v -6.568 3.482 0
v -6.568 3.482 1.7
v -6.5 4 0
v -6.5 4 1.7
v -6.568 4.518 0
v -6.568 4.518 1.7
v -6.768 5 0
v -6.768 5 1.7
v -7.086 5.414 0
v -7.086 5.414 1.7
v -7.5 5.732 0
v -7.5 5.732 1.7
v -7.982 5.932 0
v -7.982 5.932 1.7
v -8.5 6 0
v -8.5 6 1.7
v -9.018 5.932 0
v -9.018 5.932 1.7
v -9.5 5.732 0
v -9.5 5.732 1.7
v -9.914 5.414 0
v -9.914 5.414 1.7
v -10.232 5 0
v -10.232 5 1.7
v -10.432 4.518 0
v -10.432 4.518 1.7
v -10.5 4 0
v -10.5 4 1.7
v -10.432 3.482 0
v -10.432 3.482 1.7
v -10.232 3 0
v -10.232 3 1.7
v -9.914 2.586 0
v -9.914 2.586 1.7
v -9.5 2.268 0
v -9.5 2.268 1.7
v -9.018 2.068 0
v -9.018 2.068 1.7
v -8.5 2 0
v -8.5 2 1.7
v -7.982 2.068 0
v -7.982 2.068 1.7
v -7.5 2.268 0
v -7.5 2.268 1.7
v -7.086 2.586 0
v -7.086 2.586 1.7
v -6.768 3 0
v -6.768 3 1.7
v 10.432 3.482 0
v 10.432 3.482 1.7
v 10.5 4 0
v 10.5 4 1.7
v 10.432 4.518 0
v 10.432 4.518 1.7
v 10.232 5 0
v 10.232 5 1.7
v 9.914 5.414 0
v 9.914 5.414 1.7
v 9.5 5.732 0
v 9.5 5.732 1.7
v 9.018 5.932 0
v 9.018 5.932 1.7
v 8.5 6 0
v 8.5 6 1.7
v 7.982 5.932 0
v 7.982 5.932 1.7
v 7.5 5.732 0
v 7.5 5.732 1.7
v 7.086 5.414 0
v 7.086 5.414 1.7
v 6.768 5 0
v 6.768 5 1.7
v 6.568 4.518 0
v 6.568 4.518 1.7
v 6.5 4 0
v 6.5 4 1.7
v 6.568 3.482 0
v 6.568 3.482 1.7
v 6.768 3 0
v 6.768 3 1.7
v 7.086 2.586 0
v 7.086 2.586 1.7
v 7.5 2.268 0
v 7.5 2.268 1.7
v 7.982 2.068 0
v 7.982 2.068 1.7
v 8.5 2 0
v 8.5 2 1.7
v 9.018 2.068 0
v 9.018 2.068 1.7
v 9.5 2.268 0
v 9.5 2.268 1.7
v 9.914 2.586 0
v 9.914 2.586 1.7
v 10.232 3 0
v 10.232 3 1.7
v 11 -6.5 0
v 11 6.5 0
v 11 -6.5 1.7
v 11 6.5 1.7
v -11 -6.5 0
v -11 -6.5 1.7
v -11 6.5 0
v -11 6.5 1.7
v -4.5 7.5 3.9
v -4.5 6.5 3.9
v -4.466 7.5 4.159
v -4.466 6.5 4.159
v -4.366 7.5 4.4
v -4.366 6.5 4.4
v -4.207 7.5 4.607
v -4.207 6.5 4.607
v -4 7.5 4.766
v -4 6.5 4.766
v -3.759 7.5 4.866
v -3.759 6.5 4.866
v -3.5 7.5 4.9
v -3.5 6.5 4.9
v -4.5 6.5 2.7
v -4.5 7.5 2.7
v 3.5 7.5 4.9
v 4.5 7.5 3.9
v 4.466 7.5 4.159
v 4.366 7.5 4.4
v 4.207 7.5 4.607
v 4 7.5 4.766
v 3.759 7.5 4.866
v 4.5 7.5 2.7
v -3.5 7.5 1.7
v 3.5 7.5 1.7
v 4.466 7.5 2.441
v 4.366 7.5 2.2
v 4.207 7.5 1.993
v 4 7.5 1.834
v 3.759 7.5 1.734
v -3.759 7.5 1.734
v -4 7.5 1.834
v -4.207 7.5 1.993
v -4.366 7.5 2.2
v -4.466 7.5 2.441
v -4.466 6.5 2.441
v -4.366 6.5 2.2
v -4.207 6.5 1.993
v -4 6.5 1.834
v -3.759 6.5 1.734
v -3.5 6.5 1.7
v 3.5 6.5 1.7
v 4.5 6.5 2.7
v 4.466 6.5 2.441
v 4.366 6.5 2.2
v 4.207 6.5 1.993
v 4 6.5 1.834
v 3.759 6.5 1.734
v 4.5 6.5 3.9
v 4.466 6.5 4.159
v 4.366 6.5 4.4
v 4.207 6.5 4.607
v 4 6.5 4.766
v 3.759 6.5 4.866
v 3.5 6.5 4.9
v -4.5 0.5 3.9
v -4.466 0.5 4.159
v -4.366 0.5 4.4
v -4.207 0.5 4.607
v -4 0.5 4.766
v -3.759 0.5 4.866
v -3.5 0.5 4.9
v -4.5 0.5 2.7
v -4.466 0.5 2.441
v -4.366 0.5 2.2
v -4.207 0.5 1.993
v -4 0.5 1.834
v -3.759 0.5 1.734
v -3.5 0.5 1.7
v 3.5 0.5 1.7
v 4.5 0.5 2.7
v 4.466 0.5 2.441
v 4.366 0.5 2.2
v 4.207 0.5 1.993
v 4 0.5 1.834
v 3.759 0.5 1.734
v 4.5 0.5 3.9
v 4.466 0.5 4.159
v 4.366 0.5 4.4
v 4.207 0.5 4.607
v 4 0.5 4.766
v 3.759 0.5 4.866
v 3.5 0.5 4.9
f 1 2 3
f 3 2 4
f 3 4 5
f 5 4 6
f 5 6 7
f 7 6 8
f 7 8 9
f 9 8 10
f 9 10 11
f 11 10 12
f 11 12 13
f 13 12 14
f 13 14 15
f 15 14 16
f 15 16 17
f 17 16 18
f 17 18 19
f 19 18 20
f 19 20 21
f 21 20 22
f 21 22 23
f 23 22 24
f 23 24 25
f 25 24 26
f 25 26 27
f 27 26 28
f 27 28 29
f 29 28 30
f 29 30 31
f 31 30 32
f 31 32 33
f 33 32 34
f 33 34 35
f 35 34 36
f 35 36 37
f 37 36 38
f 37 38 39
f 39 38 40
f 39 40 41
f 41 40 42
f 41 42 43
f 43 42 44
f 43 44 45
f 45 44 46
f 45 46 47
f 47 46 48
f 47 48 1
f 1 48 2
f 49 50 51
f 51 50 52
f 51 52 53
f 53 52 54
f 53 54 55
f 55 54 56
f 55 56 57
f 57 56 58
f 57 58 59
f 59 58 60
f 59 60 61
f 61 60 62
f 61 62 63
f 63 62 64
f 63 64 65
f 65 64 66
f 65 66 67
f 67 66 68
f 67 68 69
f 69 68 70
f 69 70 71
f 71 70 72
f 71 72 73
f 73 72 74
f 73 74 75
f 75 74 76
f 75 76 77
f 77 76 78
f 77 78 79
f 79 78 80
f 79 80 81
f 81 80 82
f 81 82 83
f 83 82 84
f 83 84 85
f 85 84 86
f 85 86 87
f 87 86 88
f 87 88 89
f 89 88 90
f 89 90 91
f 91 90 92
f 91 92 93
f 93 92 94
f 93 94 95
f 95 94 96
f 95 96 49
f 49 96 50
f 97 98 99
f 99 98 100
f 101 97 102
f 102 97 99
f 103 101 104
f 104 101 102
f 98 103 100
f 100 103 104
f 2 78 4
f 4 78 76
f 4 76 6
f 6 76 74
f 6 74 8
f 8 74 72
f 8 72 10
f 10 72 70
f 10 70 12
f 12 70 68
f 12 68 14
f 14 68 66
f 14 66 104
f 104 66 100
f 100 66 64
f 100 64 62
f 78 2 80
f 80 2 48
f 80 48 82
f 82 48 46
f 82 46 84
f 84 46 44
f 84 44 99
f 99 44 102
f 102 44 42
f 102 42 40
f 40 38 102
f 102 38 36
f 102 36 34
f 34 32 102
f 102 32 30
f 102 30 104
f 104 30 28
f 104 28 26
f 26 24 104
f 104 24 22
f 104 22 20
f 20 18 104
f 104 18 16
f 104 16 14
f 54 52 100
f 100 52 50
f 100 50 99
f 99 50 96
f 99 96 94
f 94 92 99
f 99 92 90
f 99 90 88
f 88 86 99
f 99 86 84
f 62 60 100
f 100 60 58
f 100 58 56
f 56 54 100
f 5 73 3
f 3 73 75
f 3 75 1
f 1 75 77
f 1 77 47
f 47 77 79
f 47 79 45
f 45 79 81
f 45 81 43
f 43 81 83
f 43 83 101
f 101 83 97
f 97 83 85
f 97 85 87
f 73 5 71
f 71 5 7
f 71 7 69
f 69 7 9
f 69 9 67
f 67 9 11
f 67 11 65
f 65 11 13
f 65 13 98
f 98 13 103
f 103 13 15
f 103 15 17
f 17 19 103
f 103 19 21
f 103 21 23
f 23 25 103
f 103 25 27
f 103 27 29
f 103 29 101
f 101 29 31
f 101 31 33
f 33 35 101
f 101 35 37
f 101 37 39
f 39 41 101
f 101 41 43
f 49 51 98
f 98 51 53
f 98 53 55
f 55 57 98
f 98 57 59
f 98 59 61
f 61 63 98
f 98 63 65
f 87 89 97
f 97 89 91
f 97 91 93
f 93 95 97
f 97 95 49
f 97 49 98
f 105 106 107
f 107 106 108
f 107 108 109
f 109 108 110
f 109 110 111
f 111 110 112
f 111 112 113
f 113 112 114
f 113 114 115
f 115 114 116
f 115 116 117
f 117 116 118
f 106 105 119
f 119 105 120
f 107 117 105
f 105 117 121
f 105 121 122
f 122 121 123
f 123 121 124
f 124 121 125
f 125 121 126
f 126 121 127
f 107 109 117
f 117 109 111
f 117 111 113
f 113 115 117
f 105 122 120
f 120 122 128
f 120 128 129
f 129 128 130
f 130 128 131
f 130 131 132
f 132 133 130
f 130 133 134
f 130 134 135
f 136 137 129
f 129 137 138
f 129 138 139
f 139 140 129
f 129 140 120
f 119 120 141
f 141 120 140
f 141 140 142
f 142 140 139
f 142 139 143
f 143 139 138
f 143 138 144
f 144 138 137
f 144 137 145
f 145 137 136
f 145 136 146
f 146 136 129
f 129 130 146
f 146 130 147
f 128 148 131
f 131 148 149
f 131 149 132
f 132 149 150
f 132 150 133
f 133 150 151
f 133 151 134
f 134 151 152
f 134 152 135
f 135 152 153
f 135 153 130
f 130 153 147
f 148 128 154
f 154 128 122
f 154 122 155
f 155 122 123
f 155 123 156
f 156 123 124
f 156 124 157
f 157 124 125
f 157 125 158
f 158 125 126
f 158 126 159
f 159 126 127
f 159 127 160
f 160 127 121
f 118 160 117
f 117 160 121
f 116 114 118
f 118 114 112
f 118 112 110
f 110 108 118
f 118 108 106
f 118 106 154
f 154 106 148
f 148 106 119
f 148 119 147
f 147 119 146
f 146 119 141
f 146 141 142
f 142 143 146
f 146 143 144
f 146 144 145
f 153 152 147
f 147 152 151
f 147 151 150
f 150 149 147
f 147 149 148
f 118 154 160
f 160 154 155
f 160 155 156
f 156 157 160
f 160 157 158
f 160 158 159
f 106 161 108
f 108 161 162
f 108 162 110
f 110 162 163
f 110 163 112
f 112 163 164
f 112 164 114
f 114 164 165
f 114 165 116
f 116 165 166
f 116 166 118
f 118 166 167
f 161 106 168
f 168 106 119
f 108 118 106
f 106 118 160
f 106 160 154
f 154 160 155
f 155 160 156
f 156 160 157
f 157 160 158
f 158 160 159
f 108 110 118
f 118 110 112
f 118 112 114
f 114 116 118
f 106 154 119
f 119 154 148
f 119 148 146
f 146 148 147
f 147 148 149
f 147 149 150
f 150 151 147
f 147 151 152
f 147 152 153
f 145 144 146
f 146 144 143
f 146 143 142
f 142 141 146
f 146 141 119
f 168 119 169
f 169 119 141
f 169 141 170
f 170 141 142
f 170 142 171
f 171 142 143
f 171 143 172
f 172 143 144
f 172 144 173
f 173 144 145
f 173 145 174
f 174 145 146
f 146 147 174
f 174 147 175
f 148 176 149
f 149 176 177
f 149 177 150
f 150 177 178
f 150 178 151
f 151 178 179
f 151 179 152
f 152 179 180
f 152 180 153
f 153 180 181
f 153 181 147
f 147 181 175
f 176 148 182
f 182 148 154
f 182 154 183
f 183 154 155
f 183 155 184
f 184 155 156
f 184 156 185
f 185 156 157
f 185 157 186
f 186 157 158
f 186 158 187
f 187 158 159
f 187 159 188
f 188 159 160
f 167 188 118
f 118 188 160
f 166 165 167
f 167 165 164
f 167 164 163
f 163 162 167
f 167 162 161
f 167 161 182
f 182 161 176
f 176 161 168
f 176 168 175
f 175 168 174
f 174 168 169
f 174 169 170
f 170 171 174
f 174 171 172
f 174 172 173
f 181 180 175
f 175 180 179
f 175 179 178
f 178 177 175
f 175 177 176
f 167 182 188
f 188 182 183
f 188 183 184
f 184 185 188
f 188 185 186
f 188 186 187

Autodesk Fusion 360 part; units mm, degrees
sketch "Sketch1" plane through (0, 0, 0) normal (0, 0, 1) x (1, 0, 0) in component "board"
  line L0 (11, -6.5) -> (-11, -6.5)
  line L1 (-11, -6.5) -> (-11, 6.5)
  line L2 (-11, 6.5) -> (11, 6.5)
  line L3 (11, 6.5) -> (11, -6.5)
  line L4 (11, -6.5) -> (-11, 6.5) construction
  line L5 (-11, -6.5) -> (11, 6.5) construction
  dimension "d1" = 22
  dimension "d2" = 13
extrude "Extrude1" add sketch "Sketch1" along normal blind 1.7 makes body 1 in component "board"
sketch "Sketch1 (2)" plane through (0, 0, 1.7) normal (0, 0, 1) x (-1, 0, 0) in component "port"
  line L0 (-11, -6.5) -> (11, -6.5)
  line L1 (11, -6.5) -> (11, 6.5)
  line L2 (11, 6.5) -> (-11, 6.5)
  line L3 (-11, 6.5) -> (-11, -6.5)
  line L4 (4.5, -7.5) -> (-4.5, -7.5)
  line L5 (-4.5, -7.5) -> (-4.5, -0.5)
  line L6 (-4.5, -0.5) -> (4.5, -0.5)
  line L7 (4.5, -0.5) -> (4.5, -7.5)
  line L8 (11, -6.5) -> (-11, -6.5)
  line L9 (-4.5, -3.3996) -> (-11, -3.3996) construction
  line L10 (4.5, -3.3996) -> (11, -3.3996) construction
  dimension "d12" = 9
  dimension "d13" = 7
  dimension "d20" = 1
extrude "Extrude2" add sketch "Sketch1 (2)" along normal blind 3.2 separate body contours L0 L4 L5 L7 L8 makes body 2 in component "port"
extrude "Extrude1'" add sketch "Sketch1 (2)" along normal blind 3.2 separate body contours L0 L5 L6 L7 L8 makes body 3 in component "port"
fillet "Fillet1" radius 1 8 edges at (4.5, 3.5, 4.9) (4.5, 3.5, 1.7) (-4.5, 3.5, 1.7) (-4.5, 3.5, 4.9) (4.5, 7, 4.9) (4.5, 7, 1.7) (-4.5, 7, 1.7) (-4.5, 7, 4.9) on bodies 2 3 in component "port"
sketch "Sketch1 (3)" plane through (0, 0, 1.7) normal (0, 0, 1) x (-1, 0, 0)
  line L0 (-11, -6.5) -> (11, -6.5)
  line L1 (11, -6.5) -> (11, 6.5)
  line L2 (11, 6.5) -> (-11, 6.5)
  line L3 (-11, 6.5) -> (-11, -6.5)
  circle A0 centre (-8.5, -4) radius 2
  line L4 (-8.5, -4) -> (-8.5, -6.5)
  line L5 (-8.5, -4) -> (-11, -4)
  line L6 (0, -6.5) -> (0, 6.5) construction
  circle A1 centre (8.5, -4) radius 2
  dimension "d24" = 4
  dimension "d25" = 2.5
  dimension "d28" = 2.5
extrude "Extrude4" cut sketch "Sketch1 (3)" against normal up to surface (1.7 mm away) contours A0 L4 L5 | A0 L4 L5 | A1 bodies 1 in component "board"
component "board" placed x (1, 0, 0) y (0, 1, 0) z (0, 0, 1) at (0, 0, 0)
component "port" placed x (1, 0, 0) y (0, 1, 0) z (0, 0, 1) at (0, 0, 0)
